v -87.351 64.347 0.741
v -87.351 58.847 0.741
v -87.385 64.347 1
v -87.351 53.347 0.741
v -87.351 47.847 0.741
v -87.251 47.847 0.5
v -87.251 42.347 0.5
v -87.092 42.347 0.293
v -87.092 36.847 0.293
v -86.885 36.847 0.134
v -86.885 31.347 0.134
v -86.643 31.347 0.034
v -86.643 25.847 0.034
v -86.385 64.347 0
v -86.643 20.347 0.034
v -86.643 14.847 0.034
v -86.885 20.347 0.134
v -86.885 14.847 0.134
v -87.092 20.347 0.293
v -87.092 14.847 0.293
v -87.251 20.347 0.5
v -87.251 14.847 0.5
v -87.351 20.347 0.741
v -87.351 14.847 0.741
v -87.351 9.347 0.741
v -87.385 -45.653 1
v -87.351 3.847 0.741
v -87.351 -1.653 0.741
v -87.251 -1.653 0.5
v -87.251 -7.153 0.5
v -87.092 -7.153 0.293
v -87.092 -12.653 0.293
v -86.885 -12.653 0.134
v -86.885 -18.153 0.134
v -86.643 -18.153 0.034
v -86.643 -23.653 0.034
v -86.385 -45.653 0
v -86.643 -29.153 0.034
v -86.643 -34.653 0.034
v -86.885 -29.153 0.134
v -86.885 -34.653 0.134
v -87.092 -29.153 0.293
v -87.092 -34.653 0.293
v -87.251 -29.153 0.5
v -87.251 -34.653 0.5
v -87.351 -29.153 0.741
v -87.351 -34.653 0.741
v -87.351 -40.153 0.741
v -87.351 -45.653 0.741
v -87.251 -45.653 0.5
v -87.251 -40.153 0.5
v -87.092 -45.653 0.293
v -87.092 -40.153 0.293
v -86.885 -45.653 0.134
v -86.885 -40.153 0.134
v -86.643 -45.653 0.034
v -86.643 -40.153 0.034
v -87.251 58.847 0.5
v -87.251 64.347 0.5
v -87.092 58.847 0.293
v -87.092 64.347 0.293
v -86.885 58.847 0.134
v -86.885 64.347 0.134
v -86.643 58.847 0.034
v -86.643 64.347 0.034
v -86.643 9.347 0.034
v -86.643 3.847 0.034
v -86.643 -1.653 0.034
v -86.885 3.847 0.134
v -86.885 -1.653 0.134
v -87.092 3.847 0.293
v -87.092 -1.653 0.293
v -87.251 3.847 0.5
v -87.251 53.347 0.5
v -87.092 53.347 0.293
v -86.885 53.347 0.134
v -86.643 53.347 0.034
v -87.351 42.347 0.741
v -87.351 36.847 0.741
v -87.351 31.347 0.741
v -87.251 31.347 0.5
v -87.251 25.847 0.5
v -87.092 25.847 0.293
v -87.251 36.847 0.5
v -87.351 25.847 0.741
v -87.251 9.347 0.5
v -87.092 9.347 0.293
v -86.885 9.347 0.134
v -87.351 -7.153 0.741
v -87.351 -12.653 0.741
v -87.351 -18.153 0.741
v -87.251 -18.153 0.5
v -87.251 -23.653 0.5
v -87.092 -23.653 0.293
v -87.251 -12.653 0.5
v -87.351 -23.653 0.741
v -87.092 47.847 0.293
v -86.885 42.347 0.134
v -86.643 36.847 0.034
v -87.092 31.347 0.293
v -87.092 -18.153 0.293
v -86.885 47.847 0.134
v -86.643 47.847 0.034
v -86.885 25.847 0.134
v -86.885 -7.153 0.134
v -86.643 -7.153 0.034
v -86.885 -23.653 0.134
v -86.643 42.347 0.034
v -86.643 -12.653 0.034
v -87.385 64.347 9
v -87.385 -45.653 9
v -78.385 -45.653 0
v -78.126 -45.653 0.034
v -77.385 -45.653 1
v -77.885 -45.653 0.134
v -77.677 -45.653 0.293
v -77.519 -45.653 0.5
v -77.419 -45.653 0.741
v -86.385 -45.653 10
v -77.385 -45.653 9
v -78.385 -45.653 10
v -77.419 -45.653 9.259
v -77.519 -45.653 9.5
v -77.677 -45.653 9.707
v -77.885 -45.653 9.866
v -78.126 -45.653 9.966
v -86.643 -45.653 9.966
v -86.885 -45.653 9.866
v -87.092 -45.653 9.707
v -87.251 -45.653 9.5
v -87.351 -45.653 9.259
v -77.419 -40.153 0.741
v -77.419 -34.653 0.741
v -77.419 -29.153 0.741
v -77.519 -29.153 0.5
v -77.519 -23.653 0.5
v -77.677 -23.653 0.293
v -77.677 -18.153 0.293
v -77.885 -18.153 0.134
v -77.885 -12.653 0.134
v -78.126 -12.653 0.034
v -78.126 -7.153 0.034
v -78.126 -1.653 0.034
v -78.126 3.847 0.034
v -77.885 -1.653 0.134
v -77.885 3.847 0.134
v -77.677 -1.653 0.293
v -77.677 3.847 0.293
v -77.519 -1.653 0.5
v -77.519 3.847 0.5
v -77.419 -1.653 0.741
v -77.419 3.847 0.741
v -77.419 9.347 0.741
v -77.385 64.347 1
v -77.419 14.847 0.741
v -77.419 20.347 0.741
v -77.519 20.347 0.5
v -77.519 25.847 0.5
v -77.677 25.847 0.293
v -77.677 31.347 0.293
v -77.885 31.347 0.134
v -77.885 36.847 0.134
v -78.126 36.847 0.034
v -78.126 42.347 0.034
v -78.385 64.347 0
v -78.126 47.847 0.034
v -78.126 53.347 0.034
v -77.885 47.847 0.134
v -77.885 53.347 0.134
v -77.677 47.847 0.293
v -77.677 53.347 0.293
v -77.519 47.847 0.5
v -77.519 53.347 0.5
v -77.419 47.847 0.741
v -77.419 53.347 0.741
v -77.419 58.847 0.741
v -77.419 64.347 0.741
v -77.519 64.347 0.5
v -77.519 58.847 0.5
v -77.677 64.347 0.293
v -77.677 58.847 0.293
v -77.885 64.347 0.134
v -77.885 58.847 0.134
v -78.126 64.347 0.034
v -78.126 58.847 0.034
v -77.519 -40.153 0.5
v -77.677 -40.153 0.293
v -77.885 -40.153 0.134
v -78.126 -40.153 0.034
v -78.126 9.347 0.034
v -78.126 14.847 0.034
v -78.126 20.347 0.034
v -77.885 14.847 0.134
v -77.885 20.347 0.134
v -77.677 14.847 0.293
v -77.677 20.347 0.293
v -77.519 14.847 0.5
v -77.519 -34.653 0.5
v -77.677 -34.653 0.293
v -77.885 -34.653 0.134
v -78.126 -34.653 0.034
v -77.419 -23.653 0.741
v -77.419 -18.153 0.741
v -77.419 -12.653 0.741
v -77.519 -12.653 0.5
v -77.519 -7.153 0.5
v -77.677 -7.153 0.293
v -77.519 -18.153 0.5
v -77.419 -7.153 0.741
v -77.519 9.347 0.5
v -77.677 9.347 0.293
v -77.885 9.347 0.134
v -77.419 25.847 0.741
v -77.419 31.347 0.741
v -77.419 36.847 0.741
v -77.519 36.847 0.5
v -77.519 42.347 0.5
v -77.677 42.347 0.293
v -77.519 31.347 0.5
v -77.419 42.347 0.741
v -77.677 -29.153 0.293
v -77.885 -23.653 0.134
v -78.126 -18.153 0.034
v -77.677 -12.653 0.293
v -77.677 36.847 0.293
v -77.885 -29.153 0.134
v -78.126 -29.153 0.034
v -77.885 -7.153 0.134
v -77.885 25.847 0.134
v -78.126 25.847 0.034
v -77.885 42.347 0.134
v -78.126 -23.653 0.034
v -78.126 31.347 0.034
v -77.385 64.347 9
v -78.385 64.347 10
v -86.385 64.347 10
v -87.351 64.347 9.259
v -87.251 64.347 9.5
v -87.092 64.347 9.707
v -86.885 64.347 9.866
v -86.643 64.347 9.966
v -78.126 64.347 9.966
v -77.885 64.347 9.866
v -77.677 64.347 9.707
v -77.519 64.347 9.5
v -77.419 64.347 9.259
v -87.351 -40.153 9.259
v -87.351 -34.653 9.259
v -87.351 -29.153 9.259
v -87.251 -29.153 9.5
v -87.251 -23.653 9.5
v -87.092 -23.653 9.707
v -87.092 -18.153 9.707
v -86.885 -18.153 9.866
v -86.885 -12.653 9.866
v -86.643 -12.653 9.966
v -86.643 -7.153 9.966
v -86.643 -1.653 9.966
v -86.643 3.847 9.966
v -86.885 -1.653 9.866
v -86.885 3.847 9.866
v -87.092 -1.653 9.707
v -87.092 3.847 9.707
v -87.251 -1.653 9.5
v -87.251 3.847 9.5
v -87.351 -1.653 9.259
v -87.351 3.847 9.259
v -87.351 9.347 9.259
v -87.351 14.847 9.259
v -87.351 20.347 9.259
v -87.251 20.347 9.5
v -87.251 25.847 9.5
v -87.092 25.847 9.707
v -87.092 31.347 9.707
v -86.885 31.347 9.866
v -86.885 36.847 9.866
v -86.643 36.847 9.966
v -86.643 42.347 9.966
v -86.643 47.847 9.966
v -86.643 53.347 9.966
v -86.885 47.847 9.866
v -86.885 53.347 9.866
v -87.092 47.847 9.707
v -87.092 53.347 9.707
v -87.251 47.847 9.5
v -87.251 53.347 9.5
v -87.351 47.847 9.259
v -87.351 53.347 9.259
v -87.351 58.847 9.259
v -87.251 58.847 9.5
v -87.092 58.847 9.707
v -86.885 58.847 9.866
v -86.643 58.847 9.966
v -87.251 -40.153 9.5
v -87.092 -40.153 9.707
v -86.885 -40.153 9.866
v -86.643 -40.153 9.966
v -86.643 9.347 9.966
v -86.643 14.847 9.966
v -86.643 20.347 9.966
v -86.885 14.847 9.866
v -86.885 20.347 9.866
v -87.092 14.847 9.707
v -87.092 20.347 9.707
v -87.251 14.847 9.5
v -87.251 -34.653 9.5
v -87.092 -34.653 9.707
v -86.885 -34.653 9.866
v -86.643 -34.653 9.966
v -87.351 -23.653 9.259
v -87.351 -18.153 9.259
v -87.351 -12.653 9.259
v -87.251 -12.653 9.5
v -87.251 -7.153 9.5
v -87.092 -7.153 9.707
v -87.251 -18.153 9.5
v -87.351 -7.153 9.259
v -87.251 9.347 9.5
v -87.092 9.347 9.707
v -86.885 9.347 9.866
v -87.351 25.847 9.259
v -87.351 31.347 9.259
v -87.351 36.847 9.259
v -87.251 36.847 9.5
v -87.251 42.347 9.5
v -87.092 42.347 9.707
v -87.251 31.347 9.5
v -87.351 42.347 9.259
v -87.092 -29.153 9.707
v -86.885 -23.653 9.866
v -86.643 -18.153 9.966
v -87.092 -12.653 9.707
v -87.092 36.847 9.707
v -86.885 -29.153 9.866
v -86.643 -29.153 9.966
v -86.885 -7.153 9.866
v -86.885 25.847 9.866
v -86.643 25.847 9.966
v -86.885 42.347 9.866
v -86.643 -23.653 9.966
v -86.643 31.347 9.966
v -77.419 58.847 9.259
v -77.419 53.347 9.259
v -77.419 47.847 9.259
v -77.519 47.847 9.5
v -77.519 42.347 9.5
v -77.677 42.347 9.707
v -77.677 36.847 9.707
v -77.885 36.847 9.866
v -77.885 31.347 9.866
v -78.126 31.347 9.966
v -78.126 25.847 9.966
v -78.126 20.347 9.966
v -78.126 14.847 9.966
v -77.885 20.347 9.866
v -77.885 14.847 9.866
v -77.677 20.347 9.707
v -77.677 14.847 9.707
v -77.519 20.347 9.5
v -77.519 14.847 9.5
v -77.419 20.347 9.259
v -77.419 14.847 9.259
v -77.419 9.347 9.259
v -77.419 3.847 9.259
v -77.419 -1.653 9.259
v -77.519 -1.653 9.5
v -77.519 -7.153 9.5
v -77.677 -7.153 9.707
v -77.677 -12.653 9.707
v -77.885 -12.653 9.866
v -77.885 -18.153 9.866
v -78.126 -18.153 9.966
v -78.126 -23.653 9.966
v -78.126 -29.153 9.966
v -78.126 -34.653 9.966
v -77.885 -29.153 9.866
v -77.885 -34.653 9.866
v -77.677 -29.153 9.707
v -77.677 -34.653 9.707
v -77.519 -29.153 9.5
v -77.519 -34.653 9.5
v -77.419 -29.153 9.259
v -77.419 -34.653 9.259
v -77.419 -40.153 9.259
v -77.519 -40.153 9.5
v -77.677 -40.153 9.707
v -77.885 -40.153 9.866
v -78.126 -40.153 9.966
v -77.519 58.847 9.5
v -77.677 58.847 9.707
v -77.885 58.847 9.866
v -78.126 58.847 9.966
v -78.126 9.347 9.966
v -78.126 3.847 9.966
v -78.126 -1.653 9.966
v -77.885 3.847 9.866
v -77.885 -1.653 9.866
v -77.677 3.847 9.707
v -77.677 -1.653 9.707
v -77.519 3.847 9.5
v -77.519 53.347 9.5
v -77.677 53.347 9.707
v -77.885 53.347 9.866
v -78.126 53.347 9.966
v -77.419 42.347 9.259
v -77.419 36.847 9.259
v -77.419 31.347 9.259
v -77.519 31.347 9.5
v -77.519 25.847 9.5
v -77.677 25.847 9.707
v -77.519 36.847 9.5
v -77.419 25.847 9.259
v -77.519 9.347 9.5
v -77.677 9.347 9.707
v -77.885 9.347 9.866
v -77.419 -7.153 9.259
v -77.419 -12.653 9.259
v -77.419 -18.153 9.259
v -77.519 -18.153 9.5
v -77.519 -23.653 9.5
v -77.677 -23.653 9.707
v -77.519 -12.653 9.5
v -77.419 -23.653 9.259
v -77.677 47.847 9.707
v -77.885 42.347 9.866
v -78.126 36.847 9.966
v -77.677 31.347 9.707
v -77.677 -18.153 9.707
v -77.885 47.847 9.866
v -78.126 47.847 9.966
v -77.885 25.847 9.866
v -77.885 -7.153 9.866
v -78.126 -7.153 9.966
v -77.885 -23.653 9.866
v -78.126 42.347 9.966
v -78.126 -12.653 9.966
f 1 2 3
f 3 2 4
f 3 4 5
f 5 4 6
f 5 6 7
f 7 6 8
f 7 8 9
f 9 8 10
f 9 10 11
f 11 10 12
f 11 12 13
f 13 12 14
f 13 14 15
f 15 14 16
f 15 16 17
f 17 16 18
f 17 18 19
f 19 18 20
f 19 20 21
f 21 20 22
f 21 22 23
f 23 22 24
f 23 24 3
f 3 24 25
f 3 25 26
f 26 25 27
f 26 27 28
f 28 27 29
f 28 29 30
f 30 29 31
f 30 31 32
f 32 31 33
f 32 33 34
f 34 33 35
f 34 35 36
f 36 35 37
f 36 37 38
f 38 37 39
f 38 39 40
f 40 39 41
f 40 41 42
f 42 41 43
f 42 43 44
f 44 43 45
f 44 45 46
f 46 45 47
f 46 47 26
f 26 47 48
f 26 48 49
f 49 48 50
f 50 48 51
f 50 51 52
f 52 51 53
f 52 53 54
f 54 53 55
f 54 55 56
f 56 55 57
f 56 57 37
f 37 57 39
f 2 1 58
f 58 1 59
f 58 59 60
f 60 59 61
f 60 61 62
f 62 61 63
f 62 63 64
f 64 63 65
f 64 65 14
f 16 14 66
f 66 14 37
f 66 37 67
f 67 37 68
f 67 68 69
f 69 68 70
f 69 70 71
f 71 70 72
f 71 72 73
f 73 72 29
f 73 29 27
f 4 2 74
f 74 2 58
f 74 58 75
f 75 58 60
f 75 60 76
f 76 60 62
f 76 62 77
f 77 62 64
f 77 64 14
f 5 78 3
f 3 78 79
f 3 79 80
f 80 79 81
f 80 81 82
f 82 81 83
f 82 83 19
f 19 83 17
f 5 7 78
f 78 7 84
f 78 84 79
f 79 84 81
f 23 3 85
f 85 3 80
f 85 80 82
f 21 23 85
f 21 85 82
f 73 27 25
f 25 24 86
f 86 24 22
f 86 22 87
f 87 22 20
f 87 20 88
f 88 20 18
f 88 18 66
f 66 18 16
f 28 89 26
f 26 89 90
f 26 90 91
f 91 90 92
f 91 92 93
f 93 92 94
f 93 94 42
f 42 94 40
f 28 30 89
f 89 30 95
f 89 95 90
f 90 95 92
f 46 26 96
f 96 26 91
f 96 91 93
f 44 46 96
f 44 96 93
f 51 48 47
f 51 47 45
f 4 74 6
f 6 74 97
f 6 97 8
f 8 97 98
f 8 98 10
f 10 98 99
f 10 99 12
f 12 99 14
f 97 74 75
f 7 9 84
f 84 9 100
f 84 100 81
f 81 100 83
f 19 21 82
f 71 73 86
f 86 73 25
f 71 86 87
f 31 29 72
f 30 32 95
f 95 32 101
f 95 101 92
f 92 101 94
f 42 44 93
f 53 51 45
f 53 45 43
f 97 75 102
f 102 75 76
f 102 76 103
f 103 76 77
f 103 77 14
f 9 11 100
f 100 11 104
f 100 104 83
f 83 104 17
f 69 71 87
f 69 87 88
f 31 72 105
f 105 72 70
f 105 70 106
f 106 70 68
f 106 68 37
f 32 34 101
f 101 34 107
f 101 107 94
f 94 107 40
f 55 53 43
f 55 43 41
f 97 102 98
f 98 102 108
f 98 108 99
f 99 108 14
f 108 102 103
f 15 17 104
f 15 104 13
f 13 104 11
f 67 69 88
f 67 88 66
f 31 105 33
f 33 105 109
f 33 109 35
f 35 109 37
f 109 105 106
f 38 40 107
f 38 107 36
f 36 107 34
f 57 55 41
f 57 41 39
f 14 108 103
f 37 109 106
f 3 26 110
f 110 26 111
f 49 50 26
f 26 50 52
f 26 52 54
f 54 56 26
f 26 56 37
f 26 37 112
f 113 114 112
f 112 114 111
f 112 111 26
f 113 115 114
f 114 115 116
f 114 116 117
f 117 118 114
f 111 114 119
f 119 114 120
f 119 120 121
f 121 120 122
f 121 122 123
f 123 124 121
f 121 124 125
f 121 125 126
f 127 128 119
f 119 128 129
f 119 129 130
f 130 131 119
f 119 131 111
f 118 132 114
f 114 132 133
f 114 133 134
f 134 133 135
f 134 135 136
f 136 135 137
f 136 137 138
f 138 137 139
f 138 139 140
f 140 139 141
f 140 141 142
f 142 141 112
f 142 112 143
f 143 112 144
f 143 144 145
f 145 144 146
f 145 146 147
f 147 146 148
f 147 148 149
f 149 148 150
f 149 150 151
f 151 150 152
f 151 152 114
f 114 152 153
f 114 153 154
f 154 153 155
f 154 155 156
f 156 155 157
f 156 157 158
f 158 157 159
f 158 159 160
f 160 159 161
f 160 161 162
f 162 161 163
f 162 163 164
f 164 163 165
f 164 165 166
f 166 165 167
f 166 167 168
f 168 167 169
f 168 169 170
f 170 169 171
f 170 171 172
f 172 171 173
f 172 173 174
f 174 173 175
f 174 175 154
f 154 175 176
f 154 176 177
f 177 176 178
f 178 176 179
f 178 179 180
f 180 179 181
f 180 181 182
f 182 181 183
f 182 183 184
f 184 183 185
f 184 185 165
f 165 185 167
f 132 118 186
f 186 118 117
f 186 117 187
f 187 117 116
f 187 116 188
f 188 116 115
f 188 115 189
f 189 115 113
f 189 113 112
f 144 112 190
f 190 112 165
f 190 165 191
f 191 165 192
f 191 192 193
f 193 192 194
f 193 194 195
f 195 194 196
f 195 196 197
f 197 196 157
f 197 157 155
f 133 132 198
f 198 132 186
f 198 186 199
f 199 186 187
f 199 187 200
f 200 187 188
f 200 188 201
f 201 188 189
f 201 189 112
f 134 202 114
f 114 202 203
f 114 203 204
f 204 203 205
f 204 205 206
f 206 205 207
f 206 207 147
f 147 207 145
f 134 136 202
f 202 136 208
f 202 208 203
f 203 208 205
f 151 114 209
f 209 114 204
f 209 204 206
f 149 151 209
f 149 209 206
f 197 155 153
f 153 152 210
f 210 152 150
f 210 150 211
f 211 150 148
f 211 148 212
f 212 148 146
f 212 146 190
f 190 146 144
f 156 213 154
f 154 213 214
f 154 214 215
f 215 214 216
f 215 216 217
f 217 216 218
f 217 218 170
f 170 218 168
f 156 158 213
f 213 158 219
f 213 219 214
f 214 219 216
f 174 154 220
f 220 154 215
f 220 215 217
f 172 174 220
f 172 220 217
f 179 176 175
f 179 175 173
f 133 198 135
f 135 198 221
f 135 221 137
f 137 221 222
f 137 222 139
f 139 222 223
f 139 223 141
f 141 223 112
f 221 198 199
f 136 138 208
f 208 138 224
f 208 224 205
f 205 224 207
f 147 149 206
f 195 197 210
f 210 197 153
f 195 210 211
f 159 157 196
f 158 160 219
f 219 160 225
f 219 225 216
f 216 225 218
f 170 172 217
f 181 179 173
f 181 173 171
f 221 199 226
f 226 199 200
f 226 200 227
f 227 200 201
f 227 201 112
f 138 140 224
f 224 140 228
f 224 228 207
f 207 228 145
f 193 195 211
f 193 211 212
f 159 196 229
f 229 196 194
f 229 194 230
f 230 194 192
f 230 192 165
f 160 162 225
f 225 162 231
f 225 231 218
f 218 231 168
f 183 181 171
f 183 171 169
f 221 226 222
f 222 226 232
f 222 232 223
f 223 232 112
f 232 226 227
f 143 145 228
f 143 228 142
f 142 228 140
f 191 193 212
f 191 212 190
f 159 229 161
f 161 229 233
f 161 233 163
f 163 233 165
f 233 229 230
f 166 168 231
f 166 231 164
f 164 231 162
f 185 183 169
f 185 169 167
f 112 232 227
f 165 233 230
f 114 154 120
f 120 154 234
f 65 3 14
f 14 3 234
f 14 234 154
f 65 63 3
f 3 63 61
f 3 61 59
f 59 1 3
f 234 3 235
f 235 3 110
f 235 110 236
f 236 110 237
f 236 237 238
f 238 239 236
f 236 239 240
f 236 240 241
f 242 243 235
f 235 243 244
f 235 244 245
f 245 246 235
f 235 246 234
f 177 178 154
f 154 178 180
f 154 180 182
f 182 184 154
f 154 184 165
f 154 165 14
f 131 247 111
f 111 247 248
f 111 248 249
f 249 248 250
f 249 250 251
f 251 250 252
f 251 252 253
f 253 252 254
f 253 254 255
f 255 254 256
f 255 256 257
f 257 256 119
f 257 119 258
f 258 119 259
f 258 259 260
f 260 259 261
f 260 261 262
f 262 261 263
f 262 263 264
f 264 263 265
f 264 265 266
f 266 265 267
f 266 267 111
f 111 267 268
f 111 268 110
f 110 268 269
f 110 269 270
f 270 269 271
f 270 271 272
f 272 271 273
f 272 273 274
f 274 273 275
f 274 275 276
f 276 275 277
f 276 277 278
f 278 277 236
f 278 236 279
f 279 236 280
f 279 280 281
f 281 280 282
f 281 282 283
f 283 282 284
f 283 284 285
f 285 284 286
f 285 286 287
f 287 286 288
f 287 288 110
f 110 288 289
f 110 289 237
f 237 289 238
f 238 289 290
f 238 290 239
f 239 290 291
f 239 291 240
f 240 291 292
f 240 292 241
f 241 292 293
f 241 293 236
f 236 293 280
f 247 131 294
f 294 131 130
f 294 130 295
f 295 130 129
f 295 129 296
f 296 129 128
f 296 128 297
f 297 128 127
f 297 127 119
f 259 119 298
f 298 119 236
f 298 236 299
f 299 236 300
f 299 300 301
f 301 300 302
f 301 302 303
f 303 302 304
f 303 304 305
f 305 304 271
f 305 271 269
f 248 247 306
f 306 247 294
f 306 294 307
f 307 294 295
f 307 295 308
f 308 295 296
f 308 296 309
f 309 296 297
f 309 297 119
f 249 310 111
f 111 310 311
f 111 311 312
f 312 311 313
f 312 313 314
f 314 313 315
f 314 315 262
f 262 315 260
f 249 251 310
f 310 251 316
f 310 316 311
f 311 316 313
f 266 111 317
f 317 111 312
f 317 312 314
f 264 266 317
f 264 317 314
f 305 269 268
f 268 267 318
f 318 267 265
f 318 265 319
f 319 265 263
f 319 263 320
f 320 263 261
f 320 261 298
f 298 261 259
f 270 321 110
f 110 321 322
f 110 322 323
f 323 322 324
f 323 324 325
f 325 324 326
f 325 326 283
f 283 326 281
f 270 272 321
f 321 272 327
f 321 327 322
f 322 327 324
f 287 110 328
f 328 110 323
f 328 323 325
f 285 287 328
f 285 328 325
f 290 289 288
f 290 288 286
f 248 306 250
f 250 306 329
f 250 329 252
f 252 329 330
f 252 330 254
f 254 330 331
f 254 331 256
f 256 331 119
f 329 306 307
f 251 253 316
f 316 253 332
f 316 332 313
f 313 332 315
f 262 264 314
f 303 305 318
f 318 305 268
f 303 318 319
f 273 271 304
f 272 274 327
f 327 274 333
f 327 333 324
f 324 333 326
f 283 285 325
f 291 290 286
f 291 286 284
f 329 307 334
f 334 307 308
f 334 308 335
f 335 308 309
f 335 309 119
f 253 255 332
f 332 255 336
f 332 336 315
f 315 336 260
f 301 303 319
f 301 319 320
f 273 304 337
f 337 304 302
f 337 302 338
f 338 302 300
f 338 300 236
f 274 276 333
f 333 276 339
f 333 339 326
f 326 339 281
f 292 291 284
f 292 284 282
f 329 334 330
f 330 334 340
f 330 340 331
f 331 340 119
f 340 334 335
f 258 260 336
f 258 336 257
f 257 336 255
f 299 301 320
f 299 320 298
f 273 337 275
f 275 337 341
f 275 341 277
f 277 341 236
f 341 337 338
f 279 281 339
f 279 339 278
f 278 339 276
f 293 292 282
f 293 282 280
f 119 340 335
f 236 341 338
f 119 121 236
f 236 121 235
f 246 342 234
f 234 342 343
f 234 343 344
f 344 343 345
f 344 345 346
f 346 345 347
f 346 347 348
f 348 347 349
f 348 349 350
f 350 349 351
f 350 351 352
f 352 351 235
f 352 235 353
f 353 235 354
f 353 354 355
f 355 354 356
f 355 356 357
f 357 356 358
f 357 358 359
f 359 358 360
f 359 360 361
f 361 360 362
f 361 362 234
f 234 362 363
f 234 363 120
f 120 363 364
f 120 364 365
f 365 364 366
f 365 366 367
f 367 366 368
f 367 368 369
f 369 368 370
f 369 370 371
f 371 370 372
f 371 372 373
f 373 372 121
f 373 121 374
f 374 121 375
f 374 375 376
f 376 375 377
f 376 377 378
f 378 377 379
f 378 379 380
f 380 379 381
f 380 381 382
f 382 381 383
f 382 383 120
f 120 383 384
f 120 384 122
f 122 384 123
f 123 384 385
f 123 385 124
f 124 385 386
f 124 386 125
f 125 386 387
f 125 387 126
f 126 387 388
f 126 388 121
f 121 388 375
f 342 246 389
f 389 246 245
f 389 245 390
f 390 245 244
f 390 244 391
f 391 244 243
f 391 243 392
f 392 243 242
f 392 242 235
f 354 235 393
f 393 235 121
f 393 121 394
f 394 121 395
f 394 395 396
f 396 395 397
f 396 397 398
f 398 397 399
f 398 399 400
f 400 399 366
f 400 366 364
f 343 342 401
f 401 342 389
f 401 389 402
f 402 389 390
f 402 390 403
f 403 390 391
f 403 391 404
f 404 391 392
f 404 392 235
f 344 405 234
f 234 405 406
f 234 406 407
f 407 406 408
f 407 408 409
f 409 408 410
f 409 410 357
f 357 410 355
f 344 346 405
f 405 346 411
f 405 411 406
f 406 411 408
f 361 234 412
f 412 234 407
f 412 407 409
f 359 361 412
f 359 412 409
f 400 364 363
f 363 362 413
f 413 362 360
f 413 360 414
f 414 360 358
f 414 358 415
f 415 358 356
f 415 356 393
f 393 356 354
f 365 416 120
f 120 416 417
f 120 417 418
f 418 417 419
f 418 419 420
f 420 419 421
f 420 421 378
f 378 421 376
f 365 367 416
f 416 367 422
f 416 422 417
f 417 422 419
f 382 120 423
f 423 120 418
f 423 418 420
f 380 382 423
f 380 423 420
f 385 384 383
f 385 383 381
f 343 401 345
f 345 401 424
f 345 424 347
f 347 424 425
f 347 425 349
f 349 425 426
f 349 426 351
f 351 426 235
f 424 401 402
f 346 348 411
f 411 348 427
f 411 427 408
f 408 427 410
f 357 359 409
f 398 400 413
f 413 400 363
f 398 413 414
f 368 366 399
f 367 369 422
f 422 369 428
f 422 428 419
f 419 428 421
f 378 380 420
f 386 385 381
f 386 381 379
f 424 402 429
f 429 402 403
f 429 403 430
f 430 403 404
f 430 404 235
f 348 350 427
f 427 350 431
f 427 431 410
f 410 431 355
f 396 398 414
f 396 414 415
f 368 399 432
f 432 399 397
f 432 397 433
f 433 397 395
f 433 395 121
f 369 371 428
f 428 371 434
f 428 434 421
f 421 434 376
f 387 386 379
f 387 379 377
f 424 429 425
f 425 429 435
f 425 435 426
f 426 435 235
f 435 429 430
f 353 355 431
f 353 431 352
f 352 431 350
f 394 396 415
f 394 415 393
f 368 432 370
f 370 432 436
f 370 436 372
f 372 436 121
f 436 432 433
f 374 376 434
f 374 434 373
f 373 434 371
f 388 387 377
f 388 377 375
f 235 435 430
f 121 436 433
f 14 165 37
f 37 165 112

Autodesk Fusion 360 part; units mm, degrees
sketch "Sketch1" plane through (0, 0, 0) normal (0, 0, 1) x (1, 0, 0)
  line L0 (-67.3846, 64.3468) -> (-57.8846, 64.3468)
  line L1 (-57.8846, 64.3468) -> (-57.8846, -45.6532)
  line L2 (-57.8846, -45.6532) -> (-67.3846, -45.6532)
  line L3 (-67.3846, -45.6532) -> (-67.3846, 64.3468)
  line L4 (-38.3846, -45.6532) -> (-47.8846, -45.6532)
  line L5 (-38.3846, 64.3468) -> (-38.3846, -45.6532)
  line L6 (-47.8846, -45.6532) -> (-47.8846, 64.3468)
  line L7 (-47.8846, 64.3468) -> (-38.3846, 64.3468)
  line L8 (-18.8846, -45.6532) -> (-28.3846, -45.6532)
  line L9 (-18.8846, 64.3468) -> (-18.8846, -45.6532)
  line L10 (-28.3846, -45.6532) -> (-28.3846, 64.3468)
  line L11 (-28.3846, 64.3468) -> (-18.8846, 64.3468)
  line L12 (0.6154, -45.6532) -> (-8.8846, -45.6532)
  line L13 (0.6154, 64.3468) -> (0.6154, -45.6532)
  line L14 (-8.8846, -45.6532) -> (-8.8846, 64.3468)
  line L15 (-8.8846, 64.3468) -> (0.6154, 64.3468)
  line L16 (20.1154, -45.6532) -> (10.6154, -45.6532)
  line L17 (20.1154, 64.3468) -> (20.1154, -45.6532)
  line L18 (10.6154, -45.6532) -> (10.6154, 64.3468)
  line L19 (10.6154, 64.3468) -> (20.1154, 64.3468)
  line L20 (-77.3846, -45.6532) -> (-87.3846, -45.6532)
  line L21 (-77.3846, 64.3468) -> (-77.3846, -45.6532)
  line L22 (-87.3846, -45.6532) -> (-87.3846, 64.3468)
  line L23 (-87.3846, 64.3468) -> (-77.3846, 64.3468)
  line L24 (-97.3846, 74.3468) -> (30.6154, 74.3468)
  line L25 (30.6154, 74.3468) -> (30.6154, -55.6532)
  line L26 (30.6154, -55.6532) -> (-97.3846, -55.6532)
  line L27 (-97.3846, -55.6532) -> (-97.3846, 74.3468)
  dimension "d1" = 9.5
  dimension "d2" = 110
  dimension "d3" = 9.5
  dimension "d4" = 110
  dimension "d5" = 9.5
  dimension "d6" = 110
  dimension "d7" = 9.5
  dimension "d8" = 110
  dimension "d9" = 9.5
  dimension "d10" = 110
  dimension "d11" = 10
  dimension "d12" = 110
  dimension "d13" = 10
  dimension "d14" = 10
  dimension "d15" = 10
  dimension "d16" = 10
  dimension "d17" = 10
  dimension "d18" = 10
  dimension "d19" = 10
  dimension "d20" = 10
  dimension "d21" = 10
  dimension "d22" = 10
  dimension "d23" = 10
  dimension "d24" = 10
  dimension "d25" = 10
extrude "Extrude3" add sketch "Sketch1" along normal blind 10 contours L20 L21 L22 L23
fillet "Fillet3" radius 1 2 edges at (-77.3846, 9.3468, 10) (-87.3846, 9.3468, 10)
fillet "Fillet4" radius 1 2 edges at (-77.3846, 9.3468, 0) (-87.3846, 9.3468, 0)
